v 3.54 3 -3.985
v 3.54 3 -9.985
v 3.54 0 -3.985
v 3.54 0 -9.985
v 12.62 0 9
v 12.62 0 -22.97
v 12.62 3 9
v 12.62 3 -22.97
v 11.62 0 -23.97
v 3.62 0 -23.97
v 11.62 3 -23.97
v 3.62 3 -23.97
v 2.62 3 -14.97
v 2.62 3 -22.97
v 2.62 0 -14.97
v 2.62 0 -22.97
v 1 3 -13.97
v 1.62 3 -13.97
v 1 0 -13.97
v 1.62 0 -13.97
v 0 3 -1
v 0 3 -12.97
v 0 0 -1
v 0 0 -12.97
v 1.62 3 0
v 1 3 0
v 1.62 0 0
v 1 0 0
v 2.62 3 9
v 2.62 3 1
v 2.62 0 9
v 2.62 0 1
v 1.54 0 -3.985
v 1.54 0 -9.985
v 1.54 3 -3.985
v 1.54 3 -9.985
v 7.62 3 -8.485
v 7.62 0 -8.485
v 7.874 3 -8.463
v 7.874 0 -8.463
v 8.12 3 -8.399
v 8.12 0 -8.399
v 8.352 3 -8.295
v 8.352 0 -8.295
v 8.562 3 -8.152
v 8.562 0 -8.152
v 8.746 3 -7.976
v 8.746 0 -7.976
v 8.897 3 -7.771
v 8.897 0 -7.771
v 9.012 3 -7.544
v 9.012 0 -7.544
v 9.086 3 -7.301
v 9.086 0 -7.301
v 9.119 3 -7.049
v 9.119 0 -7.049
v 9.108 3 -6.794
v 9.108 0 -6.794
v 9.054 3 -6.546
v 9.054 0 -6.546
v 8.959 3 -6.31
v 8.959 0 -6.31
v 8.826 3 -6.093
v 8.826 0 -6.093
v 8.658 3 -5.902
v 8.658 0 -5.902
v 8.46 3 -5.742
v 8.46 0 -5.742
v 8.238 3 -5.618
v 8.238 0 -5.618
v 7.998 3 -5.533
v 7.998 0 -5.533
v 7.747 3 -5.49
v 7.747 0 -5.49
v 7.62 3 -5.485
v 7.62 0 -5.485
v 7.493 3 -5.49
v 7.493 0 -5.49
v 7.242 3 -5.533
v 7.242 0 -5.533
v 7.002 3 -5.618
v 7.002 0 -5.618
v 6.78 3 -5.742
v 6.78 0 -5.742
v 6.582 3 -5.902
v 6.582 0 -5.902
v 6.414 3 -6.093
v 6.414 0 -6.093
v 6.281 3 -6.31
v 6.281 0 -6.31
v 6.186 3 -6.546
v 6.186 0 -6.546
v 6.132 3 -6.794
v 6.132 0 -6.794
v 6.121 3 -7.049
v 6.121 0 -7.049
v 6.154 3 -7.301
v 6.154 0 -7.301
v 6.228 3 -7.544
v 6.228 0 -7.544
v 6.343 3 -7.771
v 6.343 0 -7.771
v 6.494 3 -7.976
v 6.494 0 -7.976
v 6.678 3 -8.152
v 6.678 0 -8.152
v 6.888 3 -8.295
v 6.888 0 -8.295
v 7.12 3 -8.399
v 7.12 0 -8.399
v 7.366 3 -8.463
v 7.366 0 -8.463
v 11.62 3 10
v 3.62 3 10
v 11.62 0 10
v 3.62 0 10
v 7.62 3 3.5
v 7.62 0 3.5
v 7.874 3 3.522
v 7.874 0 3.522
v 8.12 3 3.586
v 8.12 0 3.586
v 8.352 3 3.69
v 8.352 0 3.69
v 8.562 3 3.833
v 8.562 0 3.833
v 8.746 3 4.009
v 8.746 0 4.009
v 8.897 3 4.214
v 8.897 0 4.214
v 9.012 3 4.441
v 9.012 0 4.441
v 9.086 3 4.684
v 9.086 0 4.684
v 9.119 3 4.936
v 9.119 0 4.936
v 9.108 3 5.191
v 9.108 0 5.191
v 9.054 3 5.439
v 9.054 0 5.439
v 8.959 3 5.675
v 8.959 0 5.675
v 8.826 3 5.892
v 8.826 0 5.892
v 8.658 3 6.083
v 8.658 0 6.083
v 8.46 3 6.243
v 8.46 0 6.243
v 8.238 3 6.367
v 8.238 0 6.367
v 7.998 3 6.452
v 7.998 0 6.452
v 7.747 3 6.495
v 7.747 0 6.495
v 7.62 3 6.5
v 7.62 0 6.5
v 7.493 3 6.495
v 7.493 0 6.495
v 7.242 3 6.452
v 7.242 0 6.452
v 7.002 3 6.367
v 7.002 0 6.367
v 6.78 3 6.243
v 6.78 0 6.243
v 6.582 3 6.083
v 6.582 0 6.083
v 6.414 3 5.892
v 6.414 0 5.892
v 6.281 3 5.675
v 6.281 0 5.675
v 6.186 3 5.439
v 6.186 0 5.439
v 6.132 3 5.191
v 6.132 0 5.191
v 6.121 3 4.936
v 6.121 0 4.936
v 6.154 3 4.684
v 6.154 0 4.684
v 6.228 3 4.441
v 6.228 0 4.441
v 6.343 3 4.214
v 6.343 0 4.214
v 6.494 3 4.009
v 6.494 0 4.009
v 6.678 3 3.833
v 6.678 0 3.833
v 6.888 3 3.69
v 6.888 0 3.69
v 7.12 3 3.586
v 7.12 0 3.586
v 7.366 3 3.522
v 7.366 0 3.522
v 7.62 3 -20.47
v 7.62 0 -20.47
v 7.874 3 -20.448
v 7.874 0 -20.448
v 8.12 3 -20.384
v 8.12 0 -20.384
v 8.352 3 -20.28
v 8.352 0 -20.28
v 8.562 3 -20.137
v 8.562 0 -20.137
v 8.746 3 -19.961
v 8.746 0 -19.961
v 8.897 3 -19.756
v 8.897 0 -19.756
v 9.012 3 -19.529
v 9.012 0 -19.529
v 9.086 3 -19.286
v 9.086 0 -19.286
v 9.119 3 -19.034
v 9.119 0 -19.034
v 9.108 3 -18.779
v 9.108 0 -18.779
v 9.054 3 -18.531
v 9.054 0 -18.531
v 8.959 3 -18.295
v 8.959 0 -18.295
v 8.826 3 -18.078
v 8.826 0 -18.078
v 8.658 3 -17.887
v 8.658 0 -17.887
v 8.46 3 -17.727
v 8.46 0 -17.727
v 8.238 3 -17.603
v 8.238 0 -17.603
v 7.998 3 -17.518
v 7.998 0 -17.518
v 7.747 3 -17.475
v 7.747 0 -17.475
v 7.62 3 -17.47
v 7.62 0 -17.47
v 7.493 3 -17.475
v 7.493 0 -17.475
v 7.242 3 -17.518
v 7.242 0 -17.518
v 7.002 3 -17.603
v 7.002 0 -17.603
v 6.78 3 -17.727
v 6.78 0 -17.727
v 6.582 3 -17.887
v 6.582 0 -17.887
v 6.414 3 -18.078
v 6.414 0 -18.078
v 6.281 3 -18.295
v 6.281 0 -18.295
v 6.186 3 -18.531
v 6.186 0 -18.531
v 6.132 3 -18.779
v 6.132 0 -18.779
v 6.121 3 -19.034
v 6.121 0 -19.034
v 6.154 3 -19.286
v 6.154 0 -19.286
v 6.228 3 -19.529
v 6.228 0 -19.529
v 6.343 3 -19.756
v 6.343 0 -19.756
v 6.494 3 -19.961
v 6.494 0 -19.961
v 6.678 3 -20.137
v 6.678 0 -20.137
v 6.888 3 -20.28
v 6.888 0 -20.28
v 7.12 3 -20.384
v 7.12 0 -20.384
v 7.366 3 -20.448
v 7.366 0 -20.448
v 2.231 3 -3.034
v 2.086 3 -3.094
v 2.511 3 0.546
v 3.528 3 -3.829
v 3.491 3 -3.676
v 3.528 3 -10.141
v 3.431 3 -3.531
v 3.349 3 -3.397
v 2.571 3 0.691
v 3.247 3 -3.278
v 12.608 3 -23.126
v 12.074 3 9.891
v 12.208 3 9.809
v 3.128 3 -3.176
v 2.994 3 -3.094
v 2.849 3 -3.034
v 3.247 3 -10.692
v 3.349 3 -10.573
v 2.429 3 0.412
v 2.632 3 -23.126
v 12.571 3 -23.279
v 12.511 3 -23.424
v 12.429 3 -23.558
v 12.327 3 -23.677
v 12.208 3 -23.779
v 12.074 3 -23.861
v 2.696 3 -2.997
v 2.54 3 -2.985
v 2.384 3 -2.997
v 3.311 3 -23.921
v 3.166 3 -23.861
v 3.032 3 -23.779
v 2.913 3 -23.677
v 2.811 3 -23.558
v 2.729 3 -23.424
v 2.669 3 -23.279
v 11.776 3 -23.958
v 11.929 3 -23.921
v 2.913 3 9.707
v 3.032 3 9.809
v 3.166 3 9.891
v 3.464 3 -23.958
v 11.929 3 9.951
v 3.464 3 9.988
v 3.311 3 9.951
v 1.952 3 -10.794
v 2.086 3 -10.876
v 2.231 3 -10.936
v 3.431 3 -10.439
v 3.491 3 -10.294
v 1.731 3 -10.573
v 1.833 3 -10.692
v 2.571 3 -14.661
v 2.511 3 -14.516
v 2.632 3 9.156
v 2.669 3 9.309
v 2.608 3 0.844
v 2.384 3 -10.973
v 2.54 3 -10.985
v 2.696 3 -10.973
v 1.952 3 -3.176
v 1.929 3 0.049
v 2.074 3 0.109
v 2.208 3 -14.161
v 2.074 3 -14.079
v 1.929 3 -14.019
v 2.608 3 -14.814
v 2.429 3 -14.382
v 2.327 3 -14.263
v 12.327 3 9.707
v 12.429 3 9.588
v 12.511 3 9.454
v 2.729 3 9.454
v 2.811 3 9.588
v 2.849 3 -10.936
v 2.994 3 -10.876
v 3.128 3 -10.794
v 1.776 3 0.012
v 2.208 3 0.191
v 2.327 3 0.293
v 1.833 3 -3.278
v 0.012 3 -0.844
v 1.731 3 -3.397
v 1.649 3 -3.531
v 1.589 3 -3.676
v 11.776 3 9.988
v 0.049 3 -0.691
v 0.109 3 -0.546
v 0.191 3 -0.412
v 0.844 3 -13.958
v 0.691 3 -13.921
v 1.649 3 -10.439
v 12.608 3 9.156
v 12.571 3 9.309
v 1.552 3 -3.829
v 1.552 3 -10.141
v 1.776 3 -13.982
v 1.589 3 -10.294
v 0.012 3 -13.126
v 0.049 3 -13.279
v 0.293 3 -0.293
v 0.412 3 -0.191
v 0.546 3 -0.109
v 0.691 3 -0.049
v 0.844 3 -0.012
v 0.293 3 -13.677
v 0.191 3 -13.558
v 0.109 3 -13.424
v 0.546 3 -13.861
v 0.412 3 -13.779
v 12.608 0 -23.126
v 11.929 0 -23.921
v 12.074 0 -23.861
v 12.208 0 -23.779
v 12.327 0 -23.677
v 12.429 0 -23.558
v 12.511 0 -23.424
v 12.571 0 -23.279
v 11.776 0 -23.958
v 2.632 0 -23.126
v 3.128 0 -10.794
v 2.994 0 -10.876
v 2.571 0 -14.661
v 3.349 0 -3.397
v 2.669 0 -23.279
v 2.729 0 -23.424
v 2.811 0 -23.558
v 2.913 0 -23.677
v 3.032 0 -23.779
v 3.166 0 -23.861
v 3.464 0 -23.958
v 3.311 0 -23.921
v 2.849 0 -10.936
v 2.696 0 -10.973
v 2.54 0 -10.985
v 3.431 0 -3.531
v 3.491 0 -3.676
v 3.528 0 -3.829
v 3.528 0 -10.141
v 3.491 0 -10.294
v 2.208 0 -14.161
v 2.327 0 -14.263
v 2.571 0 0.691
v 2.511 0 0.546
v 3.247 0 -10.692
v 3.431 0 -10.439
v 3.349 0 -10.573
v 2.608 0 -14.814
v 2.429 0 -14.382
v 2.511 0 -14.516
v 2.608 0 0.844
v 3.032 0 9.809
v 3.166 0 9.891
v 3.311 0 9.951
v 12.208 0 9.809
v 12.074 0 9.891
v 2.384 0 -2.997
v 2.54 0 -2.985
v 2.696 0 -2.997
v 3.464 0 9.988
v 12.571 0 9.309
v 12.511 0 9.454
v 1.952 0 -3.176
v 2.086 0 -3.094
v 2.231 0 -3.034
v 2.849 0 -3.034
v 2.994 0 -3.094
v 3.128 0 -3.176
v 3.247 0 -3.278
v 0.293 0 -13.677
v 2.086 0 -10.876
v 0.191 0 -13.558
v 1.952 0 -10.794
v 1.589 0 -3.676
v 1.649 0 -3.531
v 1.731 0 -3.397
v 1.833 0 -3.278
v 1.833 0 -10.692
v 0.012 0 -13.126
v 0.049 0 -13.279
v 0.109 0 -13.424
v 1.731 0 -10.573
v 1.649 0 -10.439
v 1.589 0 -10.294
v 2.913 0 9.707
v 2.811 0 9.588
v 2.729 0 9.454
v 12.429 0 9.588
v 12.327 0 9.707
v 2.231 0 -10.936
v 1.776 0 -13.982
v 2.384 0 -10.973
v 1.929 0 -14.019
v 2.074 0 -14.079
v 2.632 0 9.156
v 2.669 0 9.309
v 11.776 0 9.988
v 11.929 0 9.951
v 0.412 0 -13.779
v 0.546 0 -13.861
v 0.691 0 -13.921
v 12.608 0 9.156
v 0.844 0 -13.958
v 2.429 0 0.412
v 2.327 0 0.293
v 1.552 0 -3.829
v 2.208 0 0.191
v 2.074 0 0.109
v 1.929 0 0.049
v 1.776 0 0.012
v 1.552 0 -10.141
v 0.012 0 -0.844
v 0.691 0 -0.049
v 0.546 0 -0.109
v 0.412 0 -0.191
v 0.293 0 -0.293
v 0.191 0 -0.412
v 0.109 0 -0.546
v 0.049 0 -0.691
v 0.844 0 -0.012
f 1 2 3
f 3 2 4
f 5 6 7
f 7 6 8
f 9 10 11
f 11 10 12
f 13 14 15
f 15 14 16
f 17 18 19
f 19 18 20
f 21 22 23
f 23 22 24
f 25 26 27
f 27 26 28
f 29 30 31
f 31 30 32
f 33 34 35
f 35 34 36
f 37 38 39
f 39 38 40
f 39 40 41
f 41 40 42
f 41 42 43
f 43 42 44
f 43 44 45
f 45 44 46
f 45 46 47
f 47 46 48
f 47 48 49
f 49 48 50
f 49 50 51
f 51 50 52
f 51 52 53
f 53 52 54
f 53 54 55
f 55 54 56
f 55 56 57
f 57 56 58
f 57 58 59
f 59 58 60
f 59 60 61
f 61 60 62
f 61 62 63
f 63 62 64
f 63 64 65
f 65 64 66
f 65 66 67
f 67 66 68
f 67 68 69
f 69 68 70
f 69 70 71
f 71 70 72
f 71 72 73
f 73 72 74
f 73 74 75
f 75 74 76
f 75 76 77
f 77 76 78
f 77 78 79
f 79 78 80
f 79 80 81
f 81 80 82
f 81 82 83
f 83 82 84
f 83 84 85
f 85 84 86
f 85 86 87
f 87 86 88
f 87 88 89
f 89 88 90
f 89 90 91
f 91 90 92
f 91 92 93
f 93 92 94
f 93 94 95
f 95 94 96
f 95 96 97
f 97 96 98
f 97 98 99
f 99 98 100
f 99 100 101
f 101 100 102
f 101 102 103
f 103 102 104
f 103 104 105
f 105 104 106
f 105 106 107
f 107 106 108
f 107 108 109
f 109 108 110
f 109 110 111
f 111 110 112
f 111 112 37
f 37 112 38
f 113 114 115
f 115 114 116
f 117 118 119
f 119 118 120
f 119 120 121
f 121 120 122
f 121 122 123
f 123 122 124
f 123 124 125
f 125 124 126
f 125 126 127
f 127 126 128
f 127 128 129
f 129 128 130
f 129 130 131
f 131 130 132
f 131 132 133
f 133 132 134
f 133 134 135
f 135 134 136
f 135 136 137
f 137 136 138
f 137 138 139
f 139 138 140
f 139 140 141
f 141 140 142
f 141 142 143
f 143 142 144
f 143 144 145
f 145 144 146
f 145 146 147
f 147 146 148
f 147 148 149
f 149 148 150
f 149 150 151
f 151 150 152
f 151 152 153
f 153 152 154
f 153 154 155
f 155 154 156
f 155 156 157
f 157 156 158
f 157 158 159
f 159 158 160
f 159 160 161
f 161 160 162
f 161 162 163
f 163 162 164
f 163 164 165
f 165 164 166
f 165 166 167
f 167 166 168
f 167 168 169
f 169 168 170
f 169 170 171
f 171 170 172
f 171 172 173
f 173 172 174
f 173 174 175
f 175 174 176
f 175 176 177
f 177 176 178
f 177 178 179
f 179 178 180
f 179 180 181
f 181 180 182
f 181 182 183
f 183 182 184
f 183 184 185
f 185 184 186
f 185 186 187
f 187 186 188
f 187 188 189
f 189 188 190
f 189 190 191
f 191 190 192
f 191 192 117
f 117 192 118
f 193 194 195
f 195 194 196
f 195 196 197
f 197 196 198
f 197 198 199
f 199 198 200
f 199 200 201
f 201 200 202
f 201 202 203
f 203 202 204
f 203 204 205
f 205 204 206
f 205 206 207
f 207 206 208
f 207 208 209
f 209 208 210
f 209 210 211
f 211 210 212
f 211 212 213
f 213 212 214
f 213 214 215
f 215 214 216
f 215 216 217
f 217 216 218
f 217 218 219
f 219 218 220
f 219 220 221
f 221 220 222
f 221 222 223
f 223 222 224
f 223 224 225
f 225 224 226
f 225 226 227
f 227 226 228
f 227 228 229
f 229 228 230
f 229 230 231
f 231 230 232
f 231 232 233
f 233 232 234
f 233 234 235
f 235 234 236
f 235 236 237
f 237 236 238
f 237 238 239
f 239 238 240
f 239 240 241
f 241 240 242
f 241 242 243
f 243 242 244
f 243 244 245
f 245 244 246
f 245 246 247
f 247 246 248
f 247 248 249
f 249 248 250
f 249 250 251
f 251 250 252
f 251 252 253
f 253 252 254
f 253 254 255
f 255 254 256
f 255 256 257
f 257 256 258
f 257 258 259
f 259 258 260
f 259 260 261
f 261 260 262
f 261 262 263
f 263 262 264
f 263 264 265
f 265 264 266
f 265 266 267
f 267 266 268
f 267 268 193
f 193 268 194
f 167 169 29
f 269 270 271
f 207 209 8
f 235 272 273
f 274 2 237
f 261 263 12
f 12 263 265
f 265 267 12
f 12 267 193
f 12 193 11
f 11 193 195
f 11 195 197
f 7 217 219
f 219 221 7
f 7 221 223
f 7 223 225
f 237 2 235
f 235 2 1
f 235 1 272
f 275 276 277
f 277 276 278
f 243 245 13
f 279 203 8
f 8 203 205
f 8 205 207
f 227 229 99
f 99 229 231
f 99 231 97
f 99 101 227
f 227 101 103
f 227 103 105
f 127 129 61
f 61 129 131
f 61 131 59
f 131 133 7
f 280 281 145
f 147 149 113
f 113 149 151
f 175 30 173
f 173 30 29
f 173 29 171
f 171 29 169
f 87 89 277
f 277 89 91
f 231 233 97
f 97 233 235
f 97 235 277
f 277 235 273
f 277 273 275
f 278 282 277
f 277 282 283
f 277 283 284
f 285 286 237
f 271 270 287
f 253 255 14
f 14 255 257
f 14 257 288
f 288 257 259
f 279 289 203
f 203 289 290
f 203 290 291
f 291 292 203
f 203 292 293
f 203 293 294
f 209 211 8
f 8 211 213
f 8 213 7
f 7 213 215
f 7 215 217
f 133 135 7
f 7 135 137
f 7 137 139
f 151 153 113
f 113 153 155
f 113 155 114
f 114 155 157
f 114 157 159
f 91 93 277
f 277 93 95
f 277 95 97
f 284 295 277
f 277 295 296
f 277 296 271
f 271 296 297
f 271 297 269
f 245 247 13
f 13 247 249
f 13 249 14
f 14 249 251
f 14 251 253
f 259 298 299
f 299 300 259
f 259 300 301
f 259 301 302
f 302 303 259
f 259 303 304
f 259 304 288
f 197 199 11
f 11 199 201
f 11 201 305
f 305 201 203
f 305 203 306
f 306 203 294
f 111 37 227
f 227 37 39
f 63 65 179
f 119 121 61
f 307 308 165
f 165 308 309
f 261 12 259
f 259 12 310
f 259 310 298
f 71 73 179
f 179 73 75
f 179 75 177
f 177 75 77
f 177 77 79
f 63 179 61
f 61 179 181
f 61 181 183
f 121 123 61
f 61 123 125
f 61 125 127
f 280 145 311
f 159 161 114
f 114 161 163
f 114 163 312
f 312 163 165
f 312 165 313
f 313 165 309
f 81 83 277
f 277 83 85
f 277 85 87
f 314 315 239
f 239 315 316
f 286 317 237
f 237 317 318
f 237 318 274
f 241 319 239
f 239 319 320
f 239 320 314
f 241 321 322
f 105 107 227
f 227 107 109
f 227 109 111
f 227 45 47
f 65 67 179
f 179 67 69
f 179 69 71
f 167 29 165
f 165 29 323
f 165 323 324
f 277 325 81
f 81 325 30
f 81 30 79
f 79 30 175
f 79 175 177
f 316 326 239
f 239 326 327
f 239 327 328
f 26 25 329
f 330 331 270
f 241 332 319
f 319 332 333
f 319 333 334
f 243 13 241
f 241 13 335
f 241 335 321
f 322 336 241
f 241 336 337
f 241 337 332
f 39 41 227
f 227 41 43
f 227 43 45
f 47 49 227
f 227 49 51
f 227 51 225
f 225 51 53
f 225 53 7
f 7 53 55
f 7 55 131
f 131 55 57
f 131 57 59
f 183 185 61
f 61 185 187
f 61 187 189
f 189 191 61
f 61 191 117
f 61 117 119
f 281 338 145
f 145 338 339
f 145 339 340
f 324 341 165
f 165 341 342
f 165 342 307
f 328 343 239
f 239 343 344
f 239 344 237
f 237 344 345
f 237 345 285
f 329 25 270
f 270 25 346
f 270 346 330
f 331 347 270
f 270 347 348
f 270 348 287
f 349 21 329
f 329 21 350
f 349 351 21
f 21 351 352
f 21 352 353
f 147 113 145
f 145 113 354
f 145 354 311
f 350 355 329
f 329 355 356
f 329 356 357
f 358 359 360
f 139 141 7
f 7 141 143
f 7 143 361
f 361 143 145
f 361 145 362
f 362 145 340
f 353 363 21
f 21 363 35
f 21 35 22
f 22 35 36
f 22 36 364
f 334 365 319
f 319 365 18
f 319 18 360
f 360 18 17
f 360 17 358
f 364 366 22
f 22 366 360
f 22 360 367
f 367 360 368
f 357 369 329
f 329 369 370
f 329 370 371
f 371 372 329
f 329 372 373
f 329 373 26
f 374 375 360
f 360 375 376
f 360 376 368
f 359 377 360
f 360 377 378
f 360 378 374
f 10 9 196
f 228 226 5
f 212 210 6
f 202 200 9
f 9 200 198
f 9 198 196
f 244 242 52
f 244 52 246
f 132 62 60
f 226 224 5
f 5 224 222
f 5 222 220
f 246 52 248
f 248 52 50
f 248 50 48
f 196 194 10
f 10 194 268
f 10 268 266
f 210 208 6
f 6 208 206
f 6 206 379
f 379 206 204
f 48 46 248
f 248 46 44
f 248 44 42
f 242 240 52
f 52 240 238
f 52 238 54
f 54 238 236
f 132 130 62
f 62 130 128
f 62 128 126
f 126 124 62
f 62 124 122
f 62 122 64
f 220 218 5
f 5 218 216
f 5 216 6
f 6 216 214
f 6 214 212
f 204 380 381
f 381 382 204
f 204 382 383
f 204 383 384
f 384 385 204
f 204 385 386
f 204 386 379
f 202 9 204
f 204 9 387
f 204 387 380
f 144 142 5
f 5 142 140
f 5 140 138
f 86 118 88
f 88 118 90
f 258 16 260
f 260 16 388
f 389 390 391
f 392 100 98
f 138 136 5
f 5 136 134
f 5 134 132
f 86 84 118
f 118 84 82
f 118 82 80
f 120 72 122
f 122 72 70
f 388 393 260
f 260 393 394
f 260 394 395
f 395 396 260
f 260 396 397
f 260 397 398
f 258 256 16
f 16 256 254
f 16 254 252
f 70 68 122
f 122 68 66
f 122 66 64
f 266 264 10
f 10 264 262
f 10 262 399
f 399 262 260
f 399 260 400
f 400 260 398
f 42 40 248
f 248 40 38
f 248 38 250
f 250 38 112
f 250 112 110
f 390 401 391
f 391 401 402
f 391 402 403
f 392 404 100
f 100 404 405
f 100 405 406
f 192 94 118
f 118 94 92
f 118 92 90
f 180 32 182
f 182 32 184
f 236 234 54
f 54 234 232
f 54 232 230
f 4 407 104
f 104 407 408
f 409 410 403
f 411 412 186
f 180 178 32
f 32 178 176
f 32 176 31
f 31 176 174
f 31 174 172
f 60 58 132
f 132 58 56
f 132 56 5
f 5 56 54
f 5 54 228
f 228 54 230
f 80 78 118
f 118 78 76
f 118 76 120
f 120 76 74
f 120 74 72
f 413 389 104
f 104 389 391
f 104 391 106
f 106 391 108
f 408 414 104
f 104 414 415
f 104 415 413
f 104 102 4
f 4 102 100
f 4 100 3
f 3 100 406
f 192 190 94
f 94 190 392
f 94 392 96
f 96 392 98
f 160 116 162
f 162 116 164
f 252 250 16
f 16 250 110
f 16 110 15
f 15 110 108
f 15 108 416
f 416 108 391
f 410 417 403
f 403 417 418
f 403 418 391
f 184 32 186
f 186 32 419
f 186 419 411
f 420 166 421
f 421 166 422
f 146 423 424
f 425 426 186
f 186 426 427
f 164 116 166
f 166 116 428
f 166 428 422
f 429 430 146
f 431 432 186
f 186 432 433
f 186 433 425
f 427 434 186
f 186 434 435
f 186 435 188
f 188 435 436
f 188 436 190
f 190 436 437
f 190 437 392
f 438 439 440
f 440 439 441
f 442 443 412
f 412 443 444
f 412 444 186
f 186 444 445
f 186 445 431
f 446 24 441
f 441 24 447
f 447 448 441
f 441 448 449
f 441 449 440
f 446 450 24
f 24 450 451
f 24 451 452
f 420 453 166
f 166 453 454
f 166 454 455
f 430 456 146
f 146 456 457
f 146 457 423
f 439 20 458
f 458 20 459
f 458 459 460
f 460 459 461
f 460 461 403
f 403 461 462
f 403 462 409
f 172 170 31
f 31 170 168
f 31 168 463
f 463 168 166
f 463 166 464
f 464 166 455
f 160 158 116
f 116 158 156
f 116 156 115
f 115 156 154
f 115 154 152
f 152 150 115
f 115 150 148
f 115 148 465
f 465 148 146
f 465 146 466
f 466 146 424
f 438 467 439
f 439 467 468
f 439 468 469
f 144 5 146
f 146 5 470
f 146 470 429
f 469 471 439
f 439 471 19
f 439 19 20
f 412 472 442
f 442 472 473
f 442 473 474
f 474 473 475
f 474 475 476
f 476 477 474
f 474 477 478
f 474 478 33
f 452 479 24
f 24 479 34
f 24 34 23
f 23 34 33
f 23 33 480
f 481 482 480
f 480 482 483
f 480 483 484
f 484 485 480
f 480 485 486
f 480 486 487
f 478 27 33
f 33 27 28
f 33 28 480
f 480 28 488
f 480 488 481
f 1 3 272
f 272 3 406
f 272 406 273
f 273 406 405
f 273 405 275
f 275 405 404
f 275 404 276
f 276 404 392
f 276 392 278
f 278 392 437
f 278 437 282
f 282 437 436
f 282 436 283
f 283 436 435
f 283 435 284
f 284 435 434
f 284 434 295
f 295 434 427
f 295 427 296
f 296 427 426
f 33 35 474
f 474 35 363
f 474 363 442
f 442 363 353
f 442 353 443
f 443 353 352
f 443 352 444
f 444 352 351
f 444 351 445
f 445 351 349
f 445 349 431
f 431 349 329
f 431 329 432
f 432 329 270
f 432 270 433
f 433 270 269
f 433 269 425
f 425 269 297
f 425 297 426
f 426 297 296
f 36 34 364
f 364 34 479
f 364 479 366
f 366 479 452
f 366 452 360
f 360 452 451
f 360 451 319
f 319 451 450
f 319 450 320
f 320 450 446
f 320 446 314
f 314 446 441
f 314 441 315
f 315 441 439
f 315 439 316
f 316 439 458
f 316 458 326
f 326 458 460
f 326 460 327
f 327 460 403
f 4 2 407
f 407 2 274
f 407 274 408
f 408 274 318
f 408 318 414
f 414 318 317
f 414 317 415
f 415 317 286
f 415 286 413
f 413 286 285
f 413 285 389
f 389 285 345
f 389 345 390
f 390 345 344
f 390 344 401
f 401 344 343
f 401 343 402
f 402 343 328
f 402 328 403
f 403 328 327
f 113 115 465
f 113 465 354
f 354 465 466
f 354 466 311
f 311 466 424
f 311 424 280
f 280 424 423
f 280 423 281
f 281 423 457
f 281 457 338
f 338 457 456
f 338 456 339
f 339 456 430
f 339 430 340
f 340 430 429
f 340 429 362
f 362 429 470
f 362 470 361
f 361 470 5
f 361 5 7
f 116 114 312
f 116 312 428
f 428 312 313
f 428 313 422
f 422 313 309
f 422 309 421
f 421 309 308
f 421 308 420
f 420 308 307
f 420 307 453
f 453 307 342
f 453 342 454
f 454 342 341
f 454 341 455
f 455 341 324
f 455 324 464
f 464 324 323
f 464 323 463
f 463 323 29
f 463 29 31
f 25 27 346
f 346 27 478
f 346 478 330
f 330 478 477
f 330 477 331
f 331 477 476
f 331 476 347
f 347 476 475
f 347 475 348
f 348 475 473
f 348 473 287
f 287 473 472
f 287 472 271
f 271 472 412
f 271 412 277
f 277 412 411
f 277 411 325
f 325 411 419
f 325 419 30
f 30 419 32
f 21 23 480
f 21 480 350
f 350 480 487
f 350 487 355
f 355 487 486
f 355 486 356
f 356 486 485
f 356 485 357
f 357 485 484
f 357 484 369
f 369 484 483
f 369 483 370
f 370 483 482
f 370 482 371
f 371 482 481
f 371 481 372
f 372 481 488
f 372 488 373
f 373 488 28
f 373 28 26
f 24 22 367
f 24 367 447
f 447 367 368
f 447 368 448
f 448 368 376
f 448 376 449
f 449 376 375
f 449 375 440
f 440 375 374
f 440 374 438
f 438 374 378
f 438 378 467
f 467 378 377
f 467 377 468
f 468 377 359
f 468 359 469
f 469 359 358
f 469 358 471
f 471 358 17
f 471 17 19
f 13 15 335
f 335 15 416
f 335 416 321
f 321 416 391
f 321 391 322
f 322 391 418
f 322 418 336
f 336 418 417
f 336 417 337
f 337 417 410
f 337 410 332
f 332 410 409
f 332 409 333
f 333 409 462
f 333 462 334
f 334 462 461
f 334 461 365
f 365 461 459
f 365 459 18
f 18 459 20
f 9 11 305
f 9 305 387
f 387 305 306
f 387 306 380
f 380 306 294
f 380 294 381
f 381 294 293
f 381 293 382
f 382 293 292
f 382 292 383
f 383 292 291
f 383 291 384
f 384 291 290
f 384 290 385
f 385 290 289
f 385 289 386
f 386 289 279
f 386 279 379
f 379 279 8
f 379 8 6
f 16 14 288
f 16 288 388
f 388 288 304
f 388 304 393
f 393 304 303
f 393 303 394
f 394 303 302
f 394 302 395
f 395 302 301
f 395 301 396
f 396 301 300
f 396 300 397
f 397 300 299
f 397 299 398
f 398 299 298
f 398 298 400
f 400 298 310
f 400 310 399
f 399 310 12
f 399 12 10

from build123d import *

# Parameters (mm, degrees)
SKETCH2_W           = 10
SKETCH2_H           = 10
SKETCH2_R           = 1.5
SKETCH2_W_2         = 12.62
SKETCH2_H_2         = 13.97
SKETCH2_W_3         = 2
SKETCH2_H_3         = 8
BOSS_EXTRUDE1_DEPTH = 3
FILLET2_R           = 1
FILLET3_R           = 1


with BuildPart() as part:
    # Sketch2 → Boss-Extrude1 (new body)
    # profile 1 of 3: a face of its own
    with BuildSketch(Plane(origin=(0, 0, 0), x_dir=(1, 0, 0), z_dir=(0, 1, 0))):
        with Locations((7.62, -5)):
            Rectangle(SKETCH2_W, SKETCH2_H)
        with Locations(Location((7.62, -5, 0), (0, 0, 270))):
            Circle(SKETCH2_R, mode=Mode.SUBTRACT)
    # profile 2 of 3: a face of its own
    with BuildSketch(Plane(origin=(0, 0, 0), x_dir=(1, 0, 0), z_dir=(0, 1, 0))):
        with Locations((6.31, 6.985)):
            Rectangle(SKETCH2_W_2, SKETCH2_H_2)
        with Locations(Location((7.62, 6.985, 0), (0, 0, 270))):
            Circle(SKETCH2_R, mode=Mode.SUBTRACT)
        with Locations((2.54, 6.985)):
            Rectangle(SKETCH2_W_3, SKETCH2_H_3, mode=Mode.SUBTRACT)
    # profile 3 of 3: a face of its own
    with BuildSketch(Plane(origin=(0, 0, 0), x_dir=(1, 0, 0), z_dir=(0, 1, 0))):
        with Locations((7.62, 18.97)):
            Rectangle(SKETCH2_W, SKETCH2_H)
        with Locations(Location((7.62, 18.97, 0), (0, 0, 270))):
            Circle(SKETCH2_R, mode=Mode.SUBTRACT)
    extrude(amount=BOSS_EXTRUDE1_DEPTH)

    # Fillet2
    fillet2_edges = [part.edges().sort_by_distance(p)[0] for p in [
        (1.54, 1.5, -2.985),
        (3.54, 1.5, -2.985),
        (3.54, 1.5, -10.985),
        (1.54, 1.5, -10.985),
    ]]
    fillet(fillet2_edges, radius=FILLET2_R - 0.0001)  # a hair under: the kernel refuses the full size

    # Fillet3
    fillet3_edges = [part.edges().sort_by_distance(p)[0] for p in [
        (12.62, 1.5, 10),
        (2.62, 1.5, 10),
        (2.62, 1.5, 0),
        (0, 1.5, 0),
        (0, 1.5, -13.97),
        (2.62, 1.5, -13.97),
        (2.62, 1.5, -23.97),
        (12.62, 1.5, -23.97),
    ]]
    fillet(fillet3_edges, radius=FILLET3_R)


solid = part.part
